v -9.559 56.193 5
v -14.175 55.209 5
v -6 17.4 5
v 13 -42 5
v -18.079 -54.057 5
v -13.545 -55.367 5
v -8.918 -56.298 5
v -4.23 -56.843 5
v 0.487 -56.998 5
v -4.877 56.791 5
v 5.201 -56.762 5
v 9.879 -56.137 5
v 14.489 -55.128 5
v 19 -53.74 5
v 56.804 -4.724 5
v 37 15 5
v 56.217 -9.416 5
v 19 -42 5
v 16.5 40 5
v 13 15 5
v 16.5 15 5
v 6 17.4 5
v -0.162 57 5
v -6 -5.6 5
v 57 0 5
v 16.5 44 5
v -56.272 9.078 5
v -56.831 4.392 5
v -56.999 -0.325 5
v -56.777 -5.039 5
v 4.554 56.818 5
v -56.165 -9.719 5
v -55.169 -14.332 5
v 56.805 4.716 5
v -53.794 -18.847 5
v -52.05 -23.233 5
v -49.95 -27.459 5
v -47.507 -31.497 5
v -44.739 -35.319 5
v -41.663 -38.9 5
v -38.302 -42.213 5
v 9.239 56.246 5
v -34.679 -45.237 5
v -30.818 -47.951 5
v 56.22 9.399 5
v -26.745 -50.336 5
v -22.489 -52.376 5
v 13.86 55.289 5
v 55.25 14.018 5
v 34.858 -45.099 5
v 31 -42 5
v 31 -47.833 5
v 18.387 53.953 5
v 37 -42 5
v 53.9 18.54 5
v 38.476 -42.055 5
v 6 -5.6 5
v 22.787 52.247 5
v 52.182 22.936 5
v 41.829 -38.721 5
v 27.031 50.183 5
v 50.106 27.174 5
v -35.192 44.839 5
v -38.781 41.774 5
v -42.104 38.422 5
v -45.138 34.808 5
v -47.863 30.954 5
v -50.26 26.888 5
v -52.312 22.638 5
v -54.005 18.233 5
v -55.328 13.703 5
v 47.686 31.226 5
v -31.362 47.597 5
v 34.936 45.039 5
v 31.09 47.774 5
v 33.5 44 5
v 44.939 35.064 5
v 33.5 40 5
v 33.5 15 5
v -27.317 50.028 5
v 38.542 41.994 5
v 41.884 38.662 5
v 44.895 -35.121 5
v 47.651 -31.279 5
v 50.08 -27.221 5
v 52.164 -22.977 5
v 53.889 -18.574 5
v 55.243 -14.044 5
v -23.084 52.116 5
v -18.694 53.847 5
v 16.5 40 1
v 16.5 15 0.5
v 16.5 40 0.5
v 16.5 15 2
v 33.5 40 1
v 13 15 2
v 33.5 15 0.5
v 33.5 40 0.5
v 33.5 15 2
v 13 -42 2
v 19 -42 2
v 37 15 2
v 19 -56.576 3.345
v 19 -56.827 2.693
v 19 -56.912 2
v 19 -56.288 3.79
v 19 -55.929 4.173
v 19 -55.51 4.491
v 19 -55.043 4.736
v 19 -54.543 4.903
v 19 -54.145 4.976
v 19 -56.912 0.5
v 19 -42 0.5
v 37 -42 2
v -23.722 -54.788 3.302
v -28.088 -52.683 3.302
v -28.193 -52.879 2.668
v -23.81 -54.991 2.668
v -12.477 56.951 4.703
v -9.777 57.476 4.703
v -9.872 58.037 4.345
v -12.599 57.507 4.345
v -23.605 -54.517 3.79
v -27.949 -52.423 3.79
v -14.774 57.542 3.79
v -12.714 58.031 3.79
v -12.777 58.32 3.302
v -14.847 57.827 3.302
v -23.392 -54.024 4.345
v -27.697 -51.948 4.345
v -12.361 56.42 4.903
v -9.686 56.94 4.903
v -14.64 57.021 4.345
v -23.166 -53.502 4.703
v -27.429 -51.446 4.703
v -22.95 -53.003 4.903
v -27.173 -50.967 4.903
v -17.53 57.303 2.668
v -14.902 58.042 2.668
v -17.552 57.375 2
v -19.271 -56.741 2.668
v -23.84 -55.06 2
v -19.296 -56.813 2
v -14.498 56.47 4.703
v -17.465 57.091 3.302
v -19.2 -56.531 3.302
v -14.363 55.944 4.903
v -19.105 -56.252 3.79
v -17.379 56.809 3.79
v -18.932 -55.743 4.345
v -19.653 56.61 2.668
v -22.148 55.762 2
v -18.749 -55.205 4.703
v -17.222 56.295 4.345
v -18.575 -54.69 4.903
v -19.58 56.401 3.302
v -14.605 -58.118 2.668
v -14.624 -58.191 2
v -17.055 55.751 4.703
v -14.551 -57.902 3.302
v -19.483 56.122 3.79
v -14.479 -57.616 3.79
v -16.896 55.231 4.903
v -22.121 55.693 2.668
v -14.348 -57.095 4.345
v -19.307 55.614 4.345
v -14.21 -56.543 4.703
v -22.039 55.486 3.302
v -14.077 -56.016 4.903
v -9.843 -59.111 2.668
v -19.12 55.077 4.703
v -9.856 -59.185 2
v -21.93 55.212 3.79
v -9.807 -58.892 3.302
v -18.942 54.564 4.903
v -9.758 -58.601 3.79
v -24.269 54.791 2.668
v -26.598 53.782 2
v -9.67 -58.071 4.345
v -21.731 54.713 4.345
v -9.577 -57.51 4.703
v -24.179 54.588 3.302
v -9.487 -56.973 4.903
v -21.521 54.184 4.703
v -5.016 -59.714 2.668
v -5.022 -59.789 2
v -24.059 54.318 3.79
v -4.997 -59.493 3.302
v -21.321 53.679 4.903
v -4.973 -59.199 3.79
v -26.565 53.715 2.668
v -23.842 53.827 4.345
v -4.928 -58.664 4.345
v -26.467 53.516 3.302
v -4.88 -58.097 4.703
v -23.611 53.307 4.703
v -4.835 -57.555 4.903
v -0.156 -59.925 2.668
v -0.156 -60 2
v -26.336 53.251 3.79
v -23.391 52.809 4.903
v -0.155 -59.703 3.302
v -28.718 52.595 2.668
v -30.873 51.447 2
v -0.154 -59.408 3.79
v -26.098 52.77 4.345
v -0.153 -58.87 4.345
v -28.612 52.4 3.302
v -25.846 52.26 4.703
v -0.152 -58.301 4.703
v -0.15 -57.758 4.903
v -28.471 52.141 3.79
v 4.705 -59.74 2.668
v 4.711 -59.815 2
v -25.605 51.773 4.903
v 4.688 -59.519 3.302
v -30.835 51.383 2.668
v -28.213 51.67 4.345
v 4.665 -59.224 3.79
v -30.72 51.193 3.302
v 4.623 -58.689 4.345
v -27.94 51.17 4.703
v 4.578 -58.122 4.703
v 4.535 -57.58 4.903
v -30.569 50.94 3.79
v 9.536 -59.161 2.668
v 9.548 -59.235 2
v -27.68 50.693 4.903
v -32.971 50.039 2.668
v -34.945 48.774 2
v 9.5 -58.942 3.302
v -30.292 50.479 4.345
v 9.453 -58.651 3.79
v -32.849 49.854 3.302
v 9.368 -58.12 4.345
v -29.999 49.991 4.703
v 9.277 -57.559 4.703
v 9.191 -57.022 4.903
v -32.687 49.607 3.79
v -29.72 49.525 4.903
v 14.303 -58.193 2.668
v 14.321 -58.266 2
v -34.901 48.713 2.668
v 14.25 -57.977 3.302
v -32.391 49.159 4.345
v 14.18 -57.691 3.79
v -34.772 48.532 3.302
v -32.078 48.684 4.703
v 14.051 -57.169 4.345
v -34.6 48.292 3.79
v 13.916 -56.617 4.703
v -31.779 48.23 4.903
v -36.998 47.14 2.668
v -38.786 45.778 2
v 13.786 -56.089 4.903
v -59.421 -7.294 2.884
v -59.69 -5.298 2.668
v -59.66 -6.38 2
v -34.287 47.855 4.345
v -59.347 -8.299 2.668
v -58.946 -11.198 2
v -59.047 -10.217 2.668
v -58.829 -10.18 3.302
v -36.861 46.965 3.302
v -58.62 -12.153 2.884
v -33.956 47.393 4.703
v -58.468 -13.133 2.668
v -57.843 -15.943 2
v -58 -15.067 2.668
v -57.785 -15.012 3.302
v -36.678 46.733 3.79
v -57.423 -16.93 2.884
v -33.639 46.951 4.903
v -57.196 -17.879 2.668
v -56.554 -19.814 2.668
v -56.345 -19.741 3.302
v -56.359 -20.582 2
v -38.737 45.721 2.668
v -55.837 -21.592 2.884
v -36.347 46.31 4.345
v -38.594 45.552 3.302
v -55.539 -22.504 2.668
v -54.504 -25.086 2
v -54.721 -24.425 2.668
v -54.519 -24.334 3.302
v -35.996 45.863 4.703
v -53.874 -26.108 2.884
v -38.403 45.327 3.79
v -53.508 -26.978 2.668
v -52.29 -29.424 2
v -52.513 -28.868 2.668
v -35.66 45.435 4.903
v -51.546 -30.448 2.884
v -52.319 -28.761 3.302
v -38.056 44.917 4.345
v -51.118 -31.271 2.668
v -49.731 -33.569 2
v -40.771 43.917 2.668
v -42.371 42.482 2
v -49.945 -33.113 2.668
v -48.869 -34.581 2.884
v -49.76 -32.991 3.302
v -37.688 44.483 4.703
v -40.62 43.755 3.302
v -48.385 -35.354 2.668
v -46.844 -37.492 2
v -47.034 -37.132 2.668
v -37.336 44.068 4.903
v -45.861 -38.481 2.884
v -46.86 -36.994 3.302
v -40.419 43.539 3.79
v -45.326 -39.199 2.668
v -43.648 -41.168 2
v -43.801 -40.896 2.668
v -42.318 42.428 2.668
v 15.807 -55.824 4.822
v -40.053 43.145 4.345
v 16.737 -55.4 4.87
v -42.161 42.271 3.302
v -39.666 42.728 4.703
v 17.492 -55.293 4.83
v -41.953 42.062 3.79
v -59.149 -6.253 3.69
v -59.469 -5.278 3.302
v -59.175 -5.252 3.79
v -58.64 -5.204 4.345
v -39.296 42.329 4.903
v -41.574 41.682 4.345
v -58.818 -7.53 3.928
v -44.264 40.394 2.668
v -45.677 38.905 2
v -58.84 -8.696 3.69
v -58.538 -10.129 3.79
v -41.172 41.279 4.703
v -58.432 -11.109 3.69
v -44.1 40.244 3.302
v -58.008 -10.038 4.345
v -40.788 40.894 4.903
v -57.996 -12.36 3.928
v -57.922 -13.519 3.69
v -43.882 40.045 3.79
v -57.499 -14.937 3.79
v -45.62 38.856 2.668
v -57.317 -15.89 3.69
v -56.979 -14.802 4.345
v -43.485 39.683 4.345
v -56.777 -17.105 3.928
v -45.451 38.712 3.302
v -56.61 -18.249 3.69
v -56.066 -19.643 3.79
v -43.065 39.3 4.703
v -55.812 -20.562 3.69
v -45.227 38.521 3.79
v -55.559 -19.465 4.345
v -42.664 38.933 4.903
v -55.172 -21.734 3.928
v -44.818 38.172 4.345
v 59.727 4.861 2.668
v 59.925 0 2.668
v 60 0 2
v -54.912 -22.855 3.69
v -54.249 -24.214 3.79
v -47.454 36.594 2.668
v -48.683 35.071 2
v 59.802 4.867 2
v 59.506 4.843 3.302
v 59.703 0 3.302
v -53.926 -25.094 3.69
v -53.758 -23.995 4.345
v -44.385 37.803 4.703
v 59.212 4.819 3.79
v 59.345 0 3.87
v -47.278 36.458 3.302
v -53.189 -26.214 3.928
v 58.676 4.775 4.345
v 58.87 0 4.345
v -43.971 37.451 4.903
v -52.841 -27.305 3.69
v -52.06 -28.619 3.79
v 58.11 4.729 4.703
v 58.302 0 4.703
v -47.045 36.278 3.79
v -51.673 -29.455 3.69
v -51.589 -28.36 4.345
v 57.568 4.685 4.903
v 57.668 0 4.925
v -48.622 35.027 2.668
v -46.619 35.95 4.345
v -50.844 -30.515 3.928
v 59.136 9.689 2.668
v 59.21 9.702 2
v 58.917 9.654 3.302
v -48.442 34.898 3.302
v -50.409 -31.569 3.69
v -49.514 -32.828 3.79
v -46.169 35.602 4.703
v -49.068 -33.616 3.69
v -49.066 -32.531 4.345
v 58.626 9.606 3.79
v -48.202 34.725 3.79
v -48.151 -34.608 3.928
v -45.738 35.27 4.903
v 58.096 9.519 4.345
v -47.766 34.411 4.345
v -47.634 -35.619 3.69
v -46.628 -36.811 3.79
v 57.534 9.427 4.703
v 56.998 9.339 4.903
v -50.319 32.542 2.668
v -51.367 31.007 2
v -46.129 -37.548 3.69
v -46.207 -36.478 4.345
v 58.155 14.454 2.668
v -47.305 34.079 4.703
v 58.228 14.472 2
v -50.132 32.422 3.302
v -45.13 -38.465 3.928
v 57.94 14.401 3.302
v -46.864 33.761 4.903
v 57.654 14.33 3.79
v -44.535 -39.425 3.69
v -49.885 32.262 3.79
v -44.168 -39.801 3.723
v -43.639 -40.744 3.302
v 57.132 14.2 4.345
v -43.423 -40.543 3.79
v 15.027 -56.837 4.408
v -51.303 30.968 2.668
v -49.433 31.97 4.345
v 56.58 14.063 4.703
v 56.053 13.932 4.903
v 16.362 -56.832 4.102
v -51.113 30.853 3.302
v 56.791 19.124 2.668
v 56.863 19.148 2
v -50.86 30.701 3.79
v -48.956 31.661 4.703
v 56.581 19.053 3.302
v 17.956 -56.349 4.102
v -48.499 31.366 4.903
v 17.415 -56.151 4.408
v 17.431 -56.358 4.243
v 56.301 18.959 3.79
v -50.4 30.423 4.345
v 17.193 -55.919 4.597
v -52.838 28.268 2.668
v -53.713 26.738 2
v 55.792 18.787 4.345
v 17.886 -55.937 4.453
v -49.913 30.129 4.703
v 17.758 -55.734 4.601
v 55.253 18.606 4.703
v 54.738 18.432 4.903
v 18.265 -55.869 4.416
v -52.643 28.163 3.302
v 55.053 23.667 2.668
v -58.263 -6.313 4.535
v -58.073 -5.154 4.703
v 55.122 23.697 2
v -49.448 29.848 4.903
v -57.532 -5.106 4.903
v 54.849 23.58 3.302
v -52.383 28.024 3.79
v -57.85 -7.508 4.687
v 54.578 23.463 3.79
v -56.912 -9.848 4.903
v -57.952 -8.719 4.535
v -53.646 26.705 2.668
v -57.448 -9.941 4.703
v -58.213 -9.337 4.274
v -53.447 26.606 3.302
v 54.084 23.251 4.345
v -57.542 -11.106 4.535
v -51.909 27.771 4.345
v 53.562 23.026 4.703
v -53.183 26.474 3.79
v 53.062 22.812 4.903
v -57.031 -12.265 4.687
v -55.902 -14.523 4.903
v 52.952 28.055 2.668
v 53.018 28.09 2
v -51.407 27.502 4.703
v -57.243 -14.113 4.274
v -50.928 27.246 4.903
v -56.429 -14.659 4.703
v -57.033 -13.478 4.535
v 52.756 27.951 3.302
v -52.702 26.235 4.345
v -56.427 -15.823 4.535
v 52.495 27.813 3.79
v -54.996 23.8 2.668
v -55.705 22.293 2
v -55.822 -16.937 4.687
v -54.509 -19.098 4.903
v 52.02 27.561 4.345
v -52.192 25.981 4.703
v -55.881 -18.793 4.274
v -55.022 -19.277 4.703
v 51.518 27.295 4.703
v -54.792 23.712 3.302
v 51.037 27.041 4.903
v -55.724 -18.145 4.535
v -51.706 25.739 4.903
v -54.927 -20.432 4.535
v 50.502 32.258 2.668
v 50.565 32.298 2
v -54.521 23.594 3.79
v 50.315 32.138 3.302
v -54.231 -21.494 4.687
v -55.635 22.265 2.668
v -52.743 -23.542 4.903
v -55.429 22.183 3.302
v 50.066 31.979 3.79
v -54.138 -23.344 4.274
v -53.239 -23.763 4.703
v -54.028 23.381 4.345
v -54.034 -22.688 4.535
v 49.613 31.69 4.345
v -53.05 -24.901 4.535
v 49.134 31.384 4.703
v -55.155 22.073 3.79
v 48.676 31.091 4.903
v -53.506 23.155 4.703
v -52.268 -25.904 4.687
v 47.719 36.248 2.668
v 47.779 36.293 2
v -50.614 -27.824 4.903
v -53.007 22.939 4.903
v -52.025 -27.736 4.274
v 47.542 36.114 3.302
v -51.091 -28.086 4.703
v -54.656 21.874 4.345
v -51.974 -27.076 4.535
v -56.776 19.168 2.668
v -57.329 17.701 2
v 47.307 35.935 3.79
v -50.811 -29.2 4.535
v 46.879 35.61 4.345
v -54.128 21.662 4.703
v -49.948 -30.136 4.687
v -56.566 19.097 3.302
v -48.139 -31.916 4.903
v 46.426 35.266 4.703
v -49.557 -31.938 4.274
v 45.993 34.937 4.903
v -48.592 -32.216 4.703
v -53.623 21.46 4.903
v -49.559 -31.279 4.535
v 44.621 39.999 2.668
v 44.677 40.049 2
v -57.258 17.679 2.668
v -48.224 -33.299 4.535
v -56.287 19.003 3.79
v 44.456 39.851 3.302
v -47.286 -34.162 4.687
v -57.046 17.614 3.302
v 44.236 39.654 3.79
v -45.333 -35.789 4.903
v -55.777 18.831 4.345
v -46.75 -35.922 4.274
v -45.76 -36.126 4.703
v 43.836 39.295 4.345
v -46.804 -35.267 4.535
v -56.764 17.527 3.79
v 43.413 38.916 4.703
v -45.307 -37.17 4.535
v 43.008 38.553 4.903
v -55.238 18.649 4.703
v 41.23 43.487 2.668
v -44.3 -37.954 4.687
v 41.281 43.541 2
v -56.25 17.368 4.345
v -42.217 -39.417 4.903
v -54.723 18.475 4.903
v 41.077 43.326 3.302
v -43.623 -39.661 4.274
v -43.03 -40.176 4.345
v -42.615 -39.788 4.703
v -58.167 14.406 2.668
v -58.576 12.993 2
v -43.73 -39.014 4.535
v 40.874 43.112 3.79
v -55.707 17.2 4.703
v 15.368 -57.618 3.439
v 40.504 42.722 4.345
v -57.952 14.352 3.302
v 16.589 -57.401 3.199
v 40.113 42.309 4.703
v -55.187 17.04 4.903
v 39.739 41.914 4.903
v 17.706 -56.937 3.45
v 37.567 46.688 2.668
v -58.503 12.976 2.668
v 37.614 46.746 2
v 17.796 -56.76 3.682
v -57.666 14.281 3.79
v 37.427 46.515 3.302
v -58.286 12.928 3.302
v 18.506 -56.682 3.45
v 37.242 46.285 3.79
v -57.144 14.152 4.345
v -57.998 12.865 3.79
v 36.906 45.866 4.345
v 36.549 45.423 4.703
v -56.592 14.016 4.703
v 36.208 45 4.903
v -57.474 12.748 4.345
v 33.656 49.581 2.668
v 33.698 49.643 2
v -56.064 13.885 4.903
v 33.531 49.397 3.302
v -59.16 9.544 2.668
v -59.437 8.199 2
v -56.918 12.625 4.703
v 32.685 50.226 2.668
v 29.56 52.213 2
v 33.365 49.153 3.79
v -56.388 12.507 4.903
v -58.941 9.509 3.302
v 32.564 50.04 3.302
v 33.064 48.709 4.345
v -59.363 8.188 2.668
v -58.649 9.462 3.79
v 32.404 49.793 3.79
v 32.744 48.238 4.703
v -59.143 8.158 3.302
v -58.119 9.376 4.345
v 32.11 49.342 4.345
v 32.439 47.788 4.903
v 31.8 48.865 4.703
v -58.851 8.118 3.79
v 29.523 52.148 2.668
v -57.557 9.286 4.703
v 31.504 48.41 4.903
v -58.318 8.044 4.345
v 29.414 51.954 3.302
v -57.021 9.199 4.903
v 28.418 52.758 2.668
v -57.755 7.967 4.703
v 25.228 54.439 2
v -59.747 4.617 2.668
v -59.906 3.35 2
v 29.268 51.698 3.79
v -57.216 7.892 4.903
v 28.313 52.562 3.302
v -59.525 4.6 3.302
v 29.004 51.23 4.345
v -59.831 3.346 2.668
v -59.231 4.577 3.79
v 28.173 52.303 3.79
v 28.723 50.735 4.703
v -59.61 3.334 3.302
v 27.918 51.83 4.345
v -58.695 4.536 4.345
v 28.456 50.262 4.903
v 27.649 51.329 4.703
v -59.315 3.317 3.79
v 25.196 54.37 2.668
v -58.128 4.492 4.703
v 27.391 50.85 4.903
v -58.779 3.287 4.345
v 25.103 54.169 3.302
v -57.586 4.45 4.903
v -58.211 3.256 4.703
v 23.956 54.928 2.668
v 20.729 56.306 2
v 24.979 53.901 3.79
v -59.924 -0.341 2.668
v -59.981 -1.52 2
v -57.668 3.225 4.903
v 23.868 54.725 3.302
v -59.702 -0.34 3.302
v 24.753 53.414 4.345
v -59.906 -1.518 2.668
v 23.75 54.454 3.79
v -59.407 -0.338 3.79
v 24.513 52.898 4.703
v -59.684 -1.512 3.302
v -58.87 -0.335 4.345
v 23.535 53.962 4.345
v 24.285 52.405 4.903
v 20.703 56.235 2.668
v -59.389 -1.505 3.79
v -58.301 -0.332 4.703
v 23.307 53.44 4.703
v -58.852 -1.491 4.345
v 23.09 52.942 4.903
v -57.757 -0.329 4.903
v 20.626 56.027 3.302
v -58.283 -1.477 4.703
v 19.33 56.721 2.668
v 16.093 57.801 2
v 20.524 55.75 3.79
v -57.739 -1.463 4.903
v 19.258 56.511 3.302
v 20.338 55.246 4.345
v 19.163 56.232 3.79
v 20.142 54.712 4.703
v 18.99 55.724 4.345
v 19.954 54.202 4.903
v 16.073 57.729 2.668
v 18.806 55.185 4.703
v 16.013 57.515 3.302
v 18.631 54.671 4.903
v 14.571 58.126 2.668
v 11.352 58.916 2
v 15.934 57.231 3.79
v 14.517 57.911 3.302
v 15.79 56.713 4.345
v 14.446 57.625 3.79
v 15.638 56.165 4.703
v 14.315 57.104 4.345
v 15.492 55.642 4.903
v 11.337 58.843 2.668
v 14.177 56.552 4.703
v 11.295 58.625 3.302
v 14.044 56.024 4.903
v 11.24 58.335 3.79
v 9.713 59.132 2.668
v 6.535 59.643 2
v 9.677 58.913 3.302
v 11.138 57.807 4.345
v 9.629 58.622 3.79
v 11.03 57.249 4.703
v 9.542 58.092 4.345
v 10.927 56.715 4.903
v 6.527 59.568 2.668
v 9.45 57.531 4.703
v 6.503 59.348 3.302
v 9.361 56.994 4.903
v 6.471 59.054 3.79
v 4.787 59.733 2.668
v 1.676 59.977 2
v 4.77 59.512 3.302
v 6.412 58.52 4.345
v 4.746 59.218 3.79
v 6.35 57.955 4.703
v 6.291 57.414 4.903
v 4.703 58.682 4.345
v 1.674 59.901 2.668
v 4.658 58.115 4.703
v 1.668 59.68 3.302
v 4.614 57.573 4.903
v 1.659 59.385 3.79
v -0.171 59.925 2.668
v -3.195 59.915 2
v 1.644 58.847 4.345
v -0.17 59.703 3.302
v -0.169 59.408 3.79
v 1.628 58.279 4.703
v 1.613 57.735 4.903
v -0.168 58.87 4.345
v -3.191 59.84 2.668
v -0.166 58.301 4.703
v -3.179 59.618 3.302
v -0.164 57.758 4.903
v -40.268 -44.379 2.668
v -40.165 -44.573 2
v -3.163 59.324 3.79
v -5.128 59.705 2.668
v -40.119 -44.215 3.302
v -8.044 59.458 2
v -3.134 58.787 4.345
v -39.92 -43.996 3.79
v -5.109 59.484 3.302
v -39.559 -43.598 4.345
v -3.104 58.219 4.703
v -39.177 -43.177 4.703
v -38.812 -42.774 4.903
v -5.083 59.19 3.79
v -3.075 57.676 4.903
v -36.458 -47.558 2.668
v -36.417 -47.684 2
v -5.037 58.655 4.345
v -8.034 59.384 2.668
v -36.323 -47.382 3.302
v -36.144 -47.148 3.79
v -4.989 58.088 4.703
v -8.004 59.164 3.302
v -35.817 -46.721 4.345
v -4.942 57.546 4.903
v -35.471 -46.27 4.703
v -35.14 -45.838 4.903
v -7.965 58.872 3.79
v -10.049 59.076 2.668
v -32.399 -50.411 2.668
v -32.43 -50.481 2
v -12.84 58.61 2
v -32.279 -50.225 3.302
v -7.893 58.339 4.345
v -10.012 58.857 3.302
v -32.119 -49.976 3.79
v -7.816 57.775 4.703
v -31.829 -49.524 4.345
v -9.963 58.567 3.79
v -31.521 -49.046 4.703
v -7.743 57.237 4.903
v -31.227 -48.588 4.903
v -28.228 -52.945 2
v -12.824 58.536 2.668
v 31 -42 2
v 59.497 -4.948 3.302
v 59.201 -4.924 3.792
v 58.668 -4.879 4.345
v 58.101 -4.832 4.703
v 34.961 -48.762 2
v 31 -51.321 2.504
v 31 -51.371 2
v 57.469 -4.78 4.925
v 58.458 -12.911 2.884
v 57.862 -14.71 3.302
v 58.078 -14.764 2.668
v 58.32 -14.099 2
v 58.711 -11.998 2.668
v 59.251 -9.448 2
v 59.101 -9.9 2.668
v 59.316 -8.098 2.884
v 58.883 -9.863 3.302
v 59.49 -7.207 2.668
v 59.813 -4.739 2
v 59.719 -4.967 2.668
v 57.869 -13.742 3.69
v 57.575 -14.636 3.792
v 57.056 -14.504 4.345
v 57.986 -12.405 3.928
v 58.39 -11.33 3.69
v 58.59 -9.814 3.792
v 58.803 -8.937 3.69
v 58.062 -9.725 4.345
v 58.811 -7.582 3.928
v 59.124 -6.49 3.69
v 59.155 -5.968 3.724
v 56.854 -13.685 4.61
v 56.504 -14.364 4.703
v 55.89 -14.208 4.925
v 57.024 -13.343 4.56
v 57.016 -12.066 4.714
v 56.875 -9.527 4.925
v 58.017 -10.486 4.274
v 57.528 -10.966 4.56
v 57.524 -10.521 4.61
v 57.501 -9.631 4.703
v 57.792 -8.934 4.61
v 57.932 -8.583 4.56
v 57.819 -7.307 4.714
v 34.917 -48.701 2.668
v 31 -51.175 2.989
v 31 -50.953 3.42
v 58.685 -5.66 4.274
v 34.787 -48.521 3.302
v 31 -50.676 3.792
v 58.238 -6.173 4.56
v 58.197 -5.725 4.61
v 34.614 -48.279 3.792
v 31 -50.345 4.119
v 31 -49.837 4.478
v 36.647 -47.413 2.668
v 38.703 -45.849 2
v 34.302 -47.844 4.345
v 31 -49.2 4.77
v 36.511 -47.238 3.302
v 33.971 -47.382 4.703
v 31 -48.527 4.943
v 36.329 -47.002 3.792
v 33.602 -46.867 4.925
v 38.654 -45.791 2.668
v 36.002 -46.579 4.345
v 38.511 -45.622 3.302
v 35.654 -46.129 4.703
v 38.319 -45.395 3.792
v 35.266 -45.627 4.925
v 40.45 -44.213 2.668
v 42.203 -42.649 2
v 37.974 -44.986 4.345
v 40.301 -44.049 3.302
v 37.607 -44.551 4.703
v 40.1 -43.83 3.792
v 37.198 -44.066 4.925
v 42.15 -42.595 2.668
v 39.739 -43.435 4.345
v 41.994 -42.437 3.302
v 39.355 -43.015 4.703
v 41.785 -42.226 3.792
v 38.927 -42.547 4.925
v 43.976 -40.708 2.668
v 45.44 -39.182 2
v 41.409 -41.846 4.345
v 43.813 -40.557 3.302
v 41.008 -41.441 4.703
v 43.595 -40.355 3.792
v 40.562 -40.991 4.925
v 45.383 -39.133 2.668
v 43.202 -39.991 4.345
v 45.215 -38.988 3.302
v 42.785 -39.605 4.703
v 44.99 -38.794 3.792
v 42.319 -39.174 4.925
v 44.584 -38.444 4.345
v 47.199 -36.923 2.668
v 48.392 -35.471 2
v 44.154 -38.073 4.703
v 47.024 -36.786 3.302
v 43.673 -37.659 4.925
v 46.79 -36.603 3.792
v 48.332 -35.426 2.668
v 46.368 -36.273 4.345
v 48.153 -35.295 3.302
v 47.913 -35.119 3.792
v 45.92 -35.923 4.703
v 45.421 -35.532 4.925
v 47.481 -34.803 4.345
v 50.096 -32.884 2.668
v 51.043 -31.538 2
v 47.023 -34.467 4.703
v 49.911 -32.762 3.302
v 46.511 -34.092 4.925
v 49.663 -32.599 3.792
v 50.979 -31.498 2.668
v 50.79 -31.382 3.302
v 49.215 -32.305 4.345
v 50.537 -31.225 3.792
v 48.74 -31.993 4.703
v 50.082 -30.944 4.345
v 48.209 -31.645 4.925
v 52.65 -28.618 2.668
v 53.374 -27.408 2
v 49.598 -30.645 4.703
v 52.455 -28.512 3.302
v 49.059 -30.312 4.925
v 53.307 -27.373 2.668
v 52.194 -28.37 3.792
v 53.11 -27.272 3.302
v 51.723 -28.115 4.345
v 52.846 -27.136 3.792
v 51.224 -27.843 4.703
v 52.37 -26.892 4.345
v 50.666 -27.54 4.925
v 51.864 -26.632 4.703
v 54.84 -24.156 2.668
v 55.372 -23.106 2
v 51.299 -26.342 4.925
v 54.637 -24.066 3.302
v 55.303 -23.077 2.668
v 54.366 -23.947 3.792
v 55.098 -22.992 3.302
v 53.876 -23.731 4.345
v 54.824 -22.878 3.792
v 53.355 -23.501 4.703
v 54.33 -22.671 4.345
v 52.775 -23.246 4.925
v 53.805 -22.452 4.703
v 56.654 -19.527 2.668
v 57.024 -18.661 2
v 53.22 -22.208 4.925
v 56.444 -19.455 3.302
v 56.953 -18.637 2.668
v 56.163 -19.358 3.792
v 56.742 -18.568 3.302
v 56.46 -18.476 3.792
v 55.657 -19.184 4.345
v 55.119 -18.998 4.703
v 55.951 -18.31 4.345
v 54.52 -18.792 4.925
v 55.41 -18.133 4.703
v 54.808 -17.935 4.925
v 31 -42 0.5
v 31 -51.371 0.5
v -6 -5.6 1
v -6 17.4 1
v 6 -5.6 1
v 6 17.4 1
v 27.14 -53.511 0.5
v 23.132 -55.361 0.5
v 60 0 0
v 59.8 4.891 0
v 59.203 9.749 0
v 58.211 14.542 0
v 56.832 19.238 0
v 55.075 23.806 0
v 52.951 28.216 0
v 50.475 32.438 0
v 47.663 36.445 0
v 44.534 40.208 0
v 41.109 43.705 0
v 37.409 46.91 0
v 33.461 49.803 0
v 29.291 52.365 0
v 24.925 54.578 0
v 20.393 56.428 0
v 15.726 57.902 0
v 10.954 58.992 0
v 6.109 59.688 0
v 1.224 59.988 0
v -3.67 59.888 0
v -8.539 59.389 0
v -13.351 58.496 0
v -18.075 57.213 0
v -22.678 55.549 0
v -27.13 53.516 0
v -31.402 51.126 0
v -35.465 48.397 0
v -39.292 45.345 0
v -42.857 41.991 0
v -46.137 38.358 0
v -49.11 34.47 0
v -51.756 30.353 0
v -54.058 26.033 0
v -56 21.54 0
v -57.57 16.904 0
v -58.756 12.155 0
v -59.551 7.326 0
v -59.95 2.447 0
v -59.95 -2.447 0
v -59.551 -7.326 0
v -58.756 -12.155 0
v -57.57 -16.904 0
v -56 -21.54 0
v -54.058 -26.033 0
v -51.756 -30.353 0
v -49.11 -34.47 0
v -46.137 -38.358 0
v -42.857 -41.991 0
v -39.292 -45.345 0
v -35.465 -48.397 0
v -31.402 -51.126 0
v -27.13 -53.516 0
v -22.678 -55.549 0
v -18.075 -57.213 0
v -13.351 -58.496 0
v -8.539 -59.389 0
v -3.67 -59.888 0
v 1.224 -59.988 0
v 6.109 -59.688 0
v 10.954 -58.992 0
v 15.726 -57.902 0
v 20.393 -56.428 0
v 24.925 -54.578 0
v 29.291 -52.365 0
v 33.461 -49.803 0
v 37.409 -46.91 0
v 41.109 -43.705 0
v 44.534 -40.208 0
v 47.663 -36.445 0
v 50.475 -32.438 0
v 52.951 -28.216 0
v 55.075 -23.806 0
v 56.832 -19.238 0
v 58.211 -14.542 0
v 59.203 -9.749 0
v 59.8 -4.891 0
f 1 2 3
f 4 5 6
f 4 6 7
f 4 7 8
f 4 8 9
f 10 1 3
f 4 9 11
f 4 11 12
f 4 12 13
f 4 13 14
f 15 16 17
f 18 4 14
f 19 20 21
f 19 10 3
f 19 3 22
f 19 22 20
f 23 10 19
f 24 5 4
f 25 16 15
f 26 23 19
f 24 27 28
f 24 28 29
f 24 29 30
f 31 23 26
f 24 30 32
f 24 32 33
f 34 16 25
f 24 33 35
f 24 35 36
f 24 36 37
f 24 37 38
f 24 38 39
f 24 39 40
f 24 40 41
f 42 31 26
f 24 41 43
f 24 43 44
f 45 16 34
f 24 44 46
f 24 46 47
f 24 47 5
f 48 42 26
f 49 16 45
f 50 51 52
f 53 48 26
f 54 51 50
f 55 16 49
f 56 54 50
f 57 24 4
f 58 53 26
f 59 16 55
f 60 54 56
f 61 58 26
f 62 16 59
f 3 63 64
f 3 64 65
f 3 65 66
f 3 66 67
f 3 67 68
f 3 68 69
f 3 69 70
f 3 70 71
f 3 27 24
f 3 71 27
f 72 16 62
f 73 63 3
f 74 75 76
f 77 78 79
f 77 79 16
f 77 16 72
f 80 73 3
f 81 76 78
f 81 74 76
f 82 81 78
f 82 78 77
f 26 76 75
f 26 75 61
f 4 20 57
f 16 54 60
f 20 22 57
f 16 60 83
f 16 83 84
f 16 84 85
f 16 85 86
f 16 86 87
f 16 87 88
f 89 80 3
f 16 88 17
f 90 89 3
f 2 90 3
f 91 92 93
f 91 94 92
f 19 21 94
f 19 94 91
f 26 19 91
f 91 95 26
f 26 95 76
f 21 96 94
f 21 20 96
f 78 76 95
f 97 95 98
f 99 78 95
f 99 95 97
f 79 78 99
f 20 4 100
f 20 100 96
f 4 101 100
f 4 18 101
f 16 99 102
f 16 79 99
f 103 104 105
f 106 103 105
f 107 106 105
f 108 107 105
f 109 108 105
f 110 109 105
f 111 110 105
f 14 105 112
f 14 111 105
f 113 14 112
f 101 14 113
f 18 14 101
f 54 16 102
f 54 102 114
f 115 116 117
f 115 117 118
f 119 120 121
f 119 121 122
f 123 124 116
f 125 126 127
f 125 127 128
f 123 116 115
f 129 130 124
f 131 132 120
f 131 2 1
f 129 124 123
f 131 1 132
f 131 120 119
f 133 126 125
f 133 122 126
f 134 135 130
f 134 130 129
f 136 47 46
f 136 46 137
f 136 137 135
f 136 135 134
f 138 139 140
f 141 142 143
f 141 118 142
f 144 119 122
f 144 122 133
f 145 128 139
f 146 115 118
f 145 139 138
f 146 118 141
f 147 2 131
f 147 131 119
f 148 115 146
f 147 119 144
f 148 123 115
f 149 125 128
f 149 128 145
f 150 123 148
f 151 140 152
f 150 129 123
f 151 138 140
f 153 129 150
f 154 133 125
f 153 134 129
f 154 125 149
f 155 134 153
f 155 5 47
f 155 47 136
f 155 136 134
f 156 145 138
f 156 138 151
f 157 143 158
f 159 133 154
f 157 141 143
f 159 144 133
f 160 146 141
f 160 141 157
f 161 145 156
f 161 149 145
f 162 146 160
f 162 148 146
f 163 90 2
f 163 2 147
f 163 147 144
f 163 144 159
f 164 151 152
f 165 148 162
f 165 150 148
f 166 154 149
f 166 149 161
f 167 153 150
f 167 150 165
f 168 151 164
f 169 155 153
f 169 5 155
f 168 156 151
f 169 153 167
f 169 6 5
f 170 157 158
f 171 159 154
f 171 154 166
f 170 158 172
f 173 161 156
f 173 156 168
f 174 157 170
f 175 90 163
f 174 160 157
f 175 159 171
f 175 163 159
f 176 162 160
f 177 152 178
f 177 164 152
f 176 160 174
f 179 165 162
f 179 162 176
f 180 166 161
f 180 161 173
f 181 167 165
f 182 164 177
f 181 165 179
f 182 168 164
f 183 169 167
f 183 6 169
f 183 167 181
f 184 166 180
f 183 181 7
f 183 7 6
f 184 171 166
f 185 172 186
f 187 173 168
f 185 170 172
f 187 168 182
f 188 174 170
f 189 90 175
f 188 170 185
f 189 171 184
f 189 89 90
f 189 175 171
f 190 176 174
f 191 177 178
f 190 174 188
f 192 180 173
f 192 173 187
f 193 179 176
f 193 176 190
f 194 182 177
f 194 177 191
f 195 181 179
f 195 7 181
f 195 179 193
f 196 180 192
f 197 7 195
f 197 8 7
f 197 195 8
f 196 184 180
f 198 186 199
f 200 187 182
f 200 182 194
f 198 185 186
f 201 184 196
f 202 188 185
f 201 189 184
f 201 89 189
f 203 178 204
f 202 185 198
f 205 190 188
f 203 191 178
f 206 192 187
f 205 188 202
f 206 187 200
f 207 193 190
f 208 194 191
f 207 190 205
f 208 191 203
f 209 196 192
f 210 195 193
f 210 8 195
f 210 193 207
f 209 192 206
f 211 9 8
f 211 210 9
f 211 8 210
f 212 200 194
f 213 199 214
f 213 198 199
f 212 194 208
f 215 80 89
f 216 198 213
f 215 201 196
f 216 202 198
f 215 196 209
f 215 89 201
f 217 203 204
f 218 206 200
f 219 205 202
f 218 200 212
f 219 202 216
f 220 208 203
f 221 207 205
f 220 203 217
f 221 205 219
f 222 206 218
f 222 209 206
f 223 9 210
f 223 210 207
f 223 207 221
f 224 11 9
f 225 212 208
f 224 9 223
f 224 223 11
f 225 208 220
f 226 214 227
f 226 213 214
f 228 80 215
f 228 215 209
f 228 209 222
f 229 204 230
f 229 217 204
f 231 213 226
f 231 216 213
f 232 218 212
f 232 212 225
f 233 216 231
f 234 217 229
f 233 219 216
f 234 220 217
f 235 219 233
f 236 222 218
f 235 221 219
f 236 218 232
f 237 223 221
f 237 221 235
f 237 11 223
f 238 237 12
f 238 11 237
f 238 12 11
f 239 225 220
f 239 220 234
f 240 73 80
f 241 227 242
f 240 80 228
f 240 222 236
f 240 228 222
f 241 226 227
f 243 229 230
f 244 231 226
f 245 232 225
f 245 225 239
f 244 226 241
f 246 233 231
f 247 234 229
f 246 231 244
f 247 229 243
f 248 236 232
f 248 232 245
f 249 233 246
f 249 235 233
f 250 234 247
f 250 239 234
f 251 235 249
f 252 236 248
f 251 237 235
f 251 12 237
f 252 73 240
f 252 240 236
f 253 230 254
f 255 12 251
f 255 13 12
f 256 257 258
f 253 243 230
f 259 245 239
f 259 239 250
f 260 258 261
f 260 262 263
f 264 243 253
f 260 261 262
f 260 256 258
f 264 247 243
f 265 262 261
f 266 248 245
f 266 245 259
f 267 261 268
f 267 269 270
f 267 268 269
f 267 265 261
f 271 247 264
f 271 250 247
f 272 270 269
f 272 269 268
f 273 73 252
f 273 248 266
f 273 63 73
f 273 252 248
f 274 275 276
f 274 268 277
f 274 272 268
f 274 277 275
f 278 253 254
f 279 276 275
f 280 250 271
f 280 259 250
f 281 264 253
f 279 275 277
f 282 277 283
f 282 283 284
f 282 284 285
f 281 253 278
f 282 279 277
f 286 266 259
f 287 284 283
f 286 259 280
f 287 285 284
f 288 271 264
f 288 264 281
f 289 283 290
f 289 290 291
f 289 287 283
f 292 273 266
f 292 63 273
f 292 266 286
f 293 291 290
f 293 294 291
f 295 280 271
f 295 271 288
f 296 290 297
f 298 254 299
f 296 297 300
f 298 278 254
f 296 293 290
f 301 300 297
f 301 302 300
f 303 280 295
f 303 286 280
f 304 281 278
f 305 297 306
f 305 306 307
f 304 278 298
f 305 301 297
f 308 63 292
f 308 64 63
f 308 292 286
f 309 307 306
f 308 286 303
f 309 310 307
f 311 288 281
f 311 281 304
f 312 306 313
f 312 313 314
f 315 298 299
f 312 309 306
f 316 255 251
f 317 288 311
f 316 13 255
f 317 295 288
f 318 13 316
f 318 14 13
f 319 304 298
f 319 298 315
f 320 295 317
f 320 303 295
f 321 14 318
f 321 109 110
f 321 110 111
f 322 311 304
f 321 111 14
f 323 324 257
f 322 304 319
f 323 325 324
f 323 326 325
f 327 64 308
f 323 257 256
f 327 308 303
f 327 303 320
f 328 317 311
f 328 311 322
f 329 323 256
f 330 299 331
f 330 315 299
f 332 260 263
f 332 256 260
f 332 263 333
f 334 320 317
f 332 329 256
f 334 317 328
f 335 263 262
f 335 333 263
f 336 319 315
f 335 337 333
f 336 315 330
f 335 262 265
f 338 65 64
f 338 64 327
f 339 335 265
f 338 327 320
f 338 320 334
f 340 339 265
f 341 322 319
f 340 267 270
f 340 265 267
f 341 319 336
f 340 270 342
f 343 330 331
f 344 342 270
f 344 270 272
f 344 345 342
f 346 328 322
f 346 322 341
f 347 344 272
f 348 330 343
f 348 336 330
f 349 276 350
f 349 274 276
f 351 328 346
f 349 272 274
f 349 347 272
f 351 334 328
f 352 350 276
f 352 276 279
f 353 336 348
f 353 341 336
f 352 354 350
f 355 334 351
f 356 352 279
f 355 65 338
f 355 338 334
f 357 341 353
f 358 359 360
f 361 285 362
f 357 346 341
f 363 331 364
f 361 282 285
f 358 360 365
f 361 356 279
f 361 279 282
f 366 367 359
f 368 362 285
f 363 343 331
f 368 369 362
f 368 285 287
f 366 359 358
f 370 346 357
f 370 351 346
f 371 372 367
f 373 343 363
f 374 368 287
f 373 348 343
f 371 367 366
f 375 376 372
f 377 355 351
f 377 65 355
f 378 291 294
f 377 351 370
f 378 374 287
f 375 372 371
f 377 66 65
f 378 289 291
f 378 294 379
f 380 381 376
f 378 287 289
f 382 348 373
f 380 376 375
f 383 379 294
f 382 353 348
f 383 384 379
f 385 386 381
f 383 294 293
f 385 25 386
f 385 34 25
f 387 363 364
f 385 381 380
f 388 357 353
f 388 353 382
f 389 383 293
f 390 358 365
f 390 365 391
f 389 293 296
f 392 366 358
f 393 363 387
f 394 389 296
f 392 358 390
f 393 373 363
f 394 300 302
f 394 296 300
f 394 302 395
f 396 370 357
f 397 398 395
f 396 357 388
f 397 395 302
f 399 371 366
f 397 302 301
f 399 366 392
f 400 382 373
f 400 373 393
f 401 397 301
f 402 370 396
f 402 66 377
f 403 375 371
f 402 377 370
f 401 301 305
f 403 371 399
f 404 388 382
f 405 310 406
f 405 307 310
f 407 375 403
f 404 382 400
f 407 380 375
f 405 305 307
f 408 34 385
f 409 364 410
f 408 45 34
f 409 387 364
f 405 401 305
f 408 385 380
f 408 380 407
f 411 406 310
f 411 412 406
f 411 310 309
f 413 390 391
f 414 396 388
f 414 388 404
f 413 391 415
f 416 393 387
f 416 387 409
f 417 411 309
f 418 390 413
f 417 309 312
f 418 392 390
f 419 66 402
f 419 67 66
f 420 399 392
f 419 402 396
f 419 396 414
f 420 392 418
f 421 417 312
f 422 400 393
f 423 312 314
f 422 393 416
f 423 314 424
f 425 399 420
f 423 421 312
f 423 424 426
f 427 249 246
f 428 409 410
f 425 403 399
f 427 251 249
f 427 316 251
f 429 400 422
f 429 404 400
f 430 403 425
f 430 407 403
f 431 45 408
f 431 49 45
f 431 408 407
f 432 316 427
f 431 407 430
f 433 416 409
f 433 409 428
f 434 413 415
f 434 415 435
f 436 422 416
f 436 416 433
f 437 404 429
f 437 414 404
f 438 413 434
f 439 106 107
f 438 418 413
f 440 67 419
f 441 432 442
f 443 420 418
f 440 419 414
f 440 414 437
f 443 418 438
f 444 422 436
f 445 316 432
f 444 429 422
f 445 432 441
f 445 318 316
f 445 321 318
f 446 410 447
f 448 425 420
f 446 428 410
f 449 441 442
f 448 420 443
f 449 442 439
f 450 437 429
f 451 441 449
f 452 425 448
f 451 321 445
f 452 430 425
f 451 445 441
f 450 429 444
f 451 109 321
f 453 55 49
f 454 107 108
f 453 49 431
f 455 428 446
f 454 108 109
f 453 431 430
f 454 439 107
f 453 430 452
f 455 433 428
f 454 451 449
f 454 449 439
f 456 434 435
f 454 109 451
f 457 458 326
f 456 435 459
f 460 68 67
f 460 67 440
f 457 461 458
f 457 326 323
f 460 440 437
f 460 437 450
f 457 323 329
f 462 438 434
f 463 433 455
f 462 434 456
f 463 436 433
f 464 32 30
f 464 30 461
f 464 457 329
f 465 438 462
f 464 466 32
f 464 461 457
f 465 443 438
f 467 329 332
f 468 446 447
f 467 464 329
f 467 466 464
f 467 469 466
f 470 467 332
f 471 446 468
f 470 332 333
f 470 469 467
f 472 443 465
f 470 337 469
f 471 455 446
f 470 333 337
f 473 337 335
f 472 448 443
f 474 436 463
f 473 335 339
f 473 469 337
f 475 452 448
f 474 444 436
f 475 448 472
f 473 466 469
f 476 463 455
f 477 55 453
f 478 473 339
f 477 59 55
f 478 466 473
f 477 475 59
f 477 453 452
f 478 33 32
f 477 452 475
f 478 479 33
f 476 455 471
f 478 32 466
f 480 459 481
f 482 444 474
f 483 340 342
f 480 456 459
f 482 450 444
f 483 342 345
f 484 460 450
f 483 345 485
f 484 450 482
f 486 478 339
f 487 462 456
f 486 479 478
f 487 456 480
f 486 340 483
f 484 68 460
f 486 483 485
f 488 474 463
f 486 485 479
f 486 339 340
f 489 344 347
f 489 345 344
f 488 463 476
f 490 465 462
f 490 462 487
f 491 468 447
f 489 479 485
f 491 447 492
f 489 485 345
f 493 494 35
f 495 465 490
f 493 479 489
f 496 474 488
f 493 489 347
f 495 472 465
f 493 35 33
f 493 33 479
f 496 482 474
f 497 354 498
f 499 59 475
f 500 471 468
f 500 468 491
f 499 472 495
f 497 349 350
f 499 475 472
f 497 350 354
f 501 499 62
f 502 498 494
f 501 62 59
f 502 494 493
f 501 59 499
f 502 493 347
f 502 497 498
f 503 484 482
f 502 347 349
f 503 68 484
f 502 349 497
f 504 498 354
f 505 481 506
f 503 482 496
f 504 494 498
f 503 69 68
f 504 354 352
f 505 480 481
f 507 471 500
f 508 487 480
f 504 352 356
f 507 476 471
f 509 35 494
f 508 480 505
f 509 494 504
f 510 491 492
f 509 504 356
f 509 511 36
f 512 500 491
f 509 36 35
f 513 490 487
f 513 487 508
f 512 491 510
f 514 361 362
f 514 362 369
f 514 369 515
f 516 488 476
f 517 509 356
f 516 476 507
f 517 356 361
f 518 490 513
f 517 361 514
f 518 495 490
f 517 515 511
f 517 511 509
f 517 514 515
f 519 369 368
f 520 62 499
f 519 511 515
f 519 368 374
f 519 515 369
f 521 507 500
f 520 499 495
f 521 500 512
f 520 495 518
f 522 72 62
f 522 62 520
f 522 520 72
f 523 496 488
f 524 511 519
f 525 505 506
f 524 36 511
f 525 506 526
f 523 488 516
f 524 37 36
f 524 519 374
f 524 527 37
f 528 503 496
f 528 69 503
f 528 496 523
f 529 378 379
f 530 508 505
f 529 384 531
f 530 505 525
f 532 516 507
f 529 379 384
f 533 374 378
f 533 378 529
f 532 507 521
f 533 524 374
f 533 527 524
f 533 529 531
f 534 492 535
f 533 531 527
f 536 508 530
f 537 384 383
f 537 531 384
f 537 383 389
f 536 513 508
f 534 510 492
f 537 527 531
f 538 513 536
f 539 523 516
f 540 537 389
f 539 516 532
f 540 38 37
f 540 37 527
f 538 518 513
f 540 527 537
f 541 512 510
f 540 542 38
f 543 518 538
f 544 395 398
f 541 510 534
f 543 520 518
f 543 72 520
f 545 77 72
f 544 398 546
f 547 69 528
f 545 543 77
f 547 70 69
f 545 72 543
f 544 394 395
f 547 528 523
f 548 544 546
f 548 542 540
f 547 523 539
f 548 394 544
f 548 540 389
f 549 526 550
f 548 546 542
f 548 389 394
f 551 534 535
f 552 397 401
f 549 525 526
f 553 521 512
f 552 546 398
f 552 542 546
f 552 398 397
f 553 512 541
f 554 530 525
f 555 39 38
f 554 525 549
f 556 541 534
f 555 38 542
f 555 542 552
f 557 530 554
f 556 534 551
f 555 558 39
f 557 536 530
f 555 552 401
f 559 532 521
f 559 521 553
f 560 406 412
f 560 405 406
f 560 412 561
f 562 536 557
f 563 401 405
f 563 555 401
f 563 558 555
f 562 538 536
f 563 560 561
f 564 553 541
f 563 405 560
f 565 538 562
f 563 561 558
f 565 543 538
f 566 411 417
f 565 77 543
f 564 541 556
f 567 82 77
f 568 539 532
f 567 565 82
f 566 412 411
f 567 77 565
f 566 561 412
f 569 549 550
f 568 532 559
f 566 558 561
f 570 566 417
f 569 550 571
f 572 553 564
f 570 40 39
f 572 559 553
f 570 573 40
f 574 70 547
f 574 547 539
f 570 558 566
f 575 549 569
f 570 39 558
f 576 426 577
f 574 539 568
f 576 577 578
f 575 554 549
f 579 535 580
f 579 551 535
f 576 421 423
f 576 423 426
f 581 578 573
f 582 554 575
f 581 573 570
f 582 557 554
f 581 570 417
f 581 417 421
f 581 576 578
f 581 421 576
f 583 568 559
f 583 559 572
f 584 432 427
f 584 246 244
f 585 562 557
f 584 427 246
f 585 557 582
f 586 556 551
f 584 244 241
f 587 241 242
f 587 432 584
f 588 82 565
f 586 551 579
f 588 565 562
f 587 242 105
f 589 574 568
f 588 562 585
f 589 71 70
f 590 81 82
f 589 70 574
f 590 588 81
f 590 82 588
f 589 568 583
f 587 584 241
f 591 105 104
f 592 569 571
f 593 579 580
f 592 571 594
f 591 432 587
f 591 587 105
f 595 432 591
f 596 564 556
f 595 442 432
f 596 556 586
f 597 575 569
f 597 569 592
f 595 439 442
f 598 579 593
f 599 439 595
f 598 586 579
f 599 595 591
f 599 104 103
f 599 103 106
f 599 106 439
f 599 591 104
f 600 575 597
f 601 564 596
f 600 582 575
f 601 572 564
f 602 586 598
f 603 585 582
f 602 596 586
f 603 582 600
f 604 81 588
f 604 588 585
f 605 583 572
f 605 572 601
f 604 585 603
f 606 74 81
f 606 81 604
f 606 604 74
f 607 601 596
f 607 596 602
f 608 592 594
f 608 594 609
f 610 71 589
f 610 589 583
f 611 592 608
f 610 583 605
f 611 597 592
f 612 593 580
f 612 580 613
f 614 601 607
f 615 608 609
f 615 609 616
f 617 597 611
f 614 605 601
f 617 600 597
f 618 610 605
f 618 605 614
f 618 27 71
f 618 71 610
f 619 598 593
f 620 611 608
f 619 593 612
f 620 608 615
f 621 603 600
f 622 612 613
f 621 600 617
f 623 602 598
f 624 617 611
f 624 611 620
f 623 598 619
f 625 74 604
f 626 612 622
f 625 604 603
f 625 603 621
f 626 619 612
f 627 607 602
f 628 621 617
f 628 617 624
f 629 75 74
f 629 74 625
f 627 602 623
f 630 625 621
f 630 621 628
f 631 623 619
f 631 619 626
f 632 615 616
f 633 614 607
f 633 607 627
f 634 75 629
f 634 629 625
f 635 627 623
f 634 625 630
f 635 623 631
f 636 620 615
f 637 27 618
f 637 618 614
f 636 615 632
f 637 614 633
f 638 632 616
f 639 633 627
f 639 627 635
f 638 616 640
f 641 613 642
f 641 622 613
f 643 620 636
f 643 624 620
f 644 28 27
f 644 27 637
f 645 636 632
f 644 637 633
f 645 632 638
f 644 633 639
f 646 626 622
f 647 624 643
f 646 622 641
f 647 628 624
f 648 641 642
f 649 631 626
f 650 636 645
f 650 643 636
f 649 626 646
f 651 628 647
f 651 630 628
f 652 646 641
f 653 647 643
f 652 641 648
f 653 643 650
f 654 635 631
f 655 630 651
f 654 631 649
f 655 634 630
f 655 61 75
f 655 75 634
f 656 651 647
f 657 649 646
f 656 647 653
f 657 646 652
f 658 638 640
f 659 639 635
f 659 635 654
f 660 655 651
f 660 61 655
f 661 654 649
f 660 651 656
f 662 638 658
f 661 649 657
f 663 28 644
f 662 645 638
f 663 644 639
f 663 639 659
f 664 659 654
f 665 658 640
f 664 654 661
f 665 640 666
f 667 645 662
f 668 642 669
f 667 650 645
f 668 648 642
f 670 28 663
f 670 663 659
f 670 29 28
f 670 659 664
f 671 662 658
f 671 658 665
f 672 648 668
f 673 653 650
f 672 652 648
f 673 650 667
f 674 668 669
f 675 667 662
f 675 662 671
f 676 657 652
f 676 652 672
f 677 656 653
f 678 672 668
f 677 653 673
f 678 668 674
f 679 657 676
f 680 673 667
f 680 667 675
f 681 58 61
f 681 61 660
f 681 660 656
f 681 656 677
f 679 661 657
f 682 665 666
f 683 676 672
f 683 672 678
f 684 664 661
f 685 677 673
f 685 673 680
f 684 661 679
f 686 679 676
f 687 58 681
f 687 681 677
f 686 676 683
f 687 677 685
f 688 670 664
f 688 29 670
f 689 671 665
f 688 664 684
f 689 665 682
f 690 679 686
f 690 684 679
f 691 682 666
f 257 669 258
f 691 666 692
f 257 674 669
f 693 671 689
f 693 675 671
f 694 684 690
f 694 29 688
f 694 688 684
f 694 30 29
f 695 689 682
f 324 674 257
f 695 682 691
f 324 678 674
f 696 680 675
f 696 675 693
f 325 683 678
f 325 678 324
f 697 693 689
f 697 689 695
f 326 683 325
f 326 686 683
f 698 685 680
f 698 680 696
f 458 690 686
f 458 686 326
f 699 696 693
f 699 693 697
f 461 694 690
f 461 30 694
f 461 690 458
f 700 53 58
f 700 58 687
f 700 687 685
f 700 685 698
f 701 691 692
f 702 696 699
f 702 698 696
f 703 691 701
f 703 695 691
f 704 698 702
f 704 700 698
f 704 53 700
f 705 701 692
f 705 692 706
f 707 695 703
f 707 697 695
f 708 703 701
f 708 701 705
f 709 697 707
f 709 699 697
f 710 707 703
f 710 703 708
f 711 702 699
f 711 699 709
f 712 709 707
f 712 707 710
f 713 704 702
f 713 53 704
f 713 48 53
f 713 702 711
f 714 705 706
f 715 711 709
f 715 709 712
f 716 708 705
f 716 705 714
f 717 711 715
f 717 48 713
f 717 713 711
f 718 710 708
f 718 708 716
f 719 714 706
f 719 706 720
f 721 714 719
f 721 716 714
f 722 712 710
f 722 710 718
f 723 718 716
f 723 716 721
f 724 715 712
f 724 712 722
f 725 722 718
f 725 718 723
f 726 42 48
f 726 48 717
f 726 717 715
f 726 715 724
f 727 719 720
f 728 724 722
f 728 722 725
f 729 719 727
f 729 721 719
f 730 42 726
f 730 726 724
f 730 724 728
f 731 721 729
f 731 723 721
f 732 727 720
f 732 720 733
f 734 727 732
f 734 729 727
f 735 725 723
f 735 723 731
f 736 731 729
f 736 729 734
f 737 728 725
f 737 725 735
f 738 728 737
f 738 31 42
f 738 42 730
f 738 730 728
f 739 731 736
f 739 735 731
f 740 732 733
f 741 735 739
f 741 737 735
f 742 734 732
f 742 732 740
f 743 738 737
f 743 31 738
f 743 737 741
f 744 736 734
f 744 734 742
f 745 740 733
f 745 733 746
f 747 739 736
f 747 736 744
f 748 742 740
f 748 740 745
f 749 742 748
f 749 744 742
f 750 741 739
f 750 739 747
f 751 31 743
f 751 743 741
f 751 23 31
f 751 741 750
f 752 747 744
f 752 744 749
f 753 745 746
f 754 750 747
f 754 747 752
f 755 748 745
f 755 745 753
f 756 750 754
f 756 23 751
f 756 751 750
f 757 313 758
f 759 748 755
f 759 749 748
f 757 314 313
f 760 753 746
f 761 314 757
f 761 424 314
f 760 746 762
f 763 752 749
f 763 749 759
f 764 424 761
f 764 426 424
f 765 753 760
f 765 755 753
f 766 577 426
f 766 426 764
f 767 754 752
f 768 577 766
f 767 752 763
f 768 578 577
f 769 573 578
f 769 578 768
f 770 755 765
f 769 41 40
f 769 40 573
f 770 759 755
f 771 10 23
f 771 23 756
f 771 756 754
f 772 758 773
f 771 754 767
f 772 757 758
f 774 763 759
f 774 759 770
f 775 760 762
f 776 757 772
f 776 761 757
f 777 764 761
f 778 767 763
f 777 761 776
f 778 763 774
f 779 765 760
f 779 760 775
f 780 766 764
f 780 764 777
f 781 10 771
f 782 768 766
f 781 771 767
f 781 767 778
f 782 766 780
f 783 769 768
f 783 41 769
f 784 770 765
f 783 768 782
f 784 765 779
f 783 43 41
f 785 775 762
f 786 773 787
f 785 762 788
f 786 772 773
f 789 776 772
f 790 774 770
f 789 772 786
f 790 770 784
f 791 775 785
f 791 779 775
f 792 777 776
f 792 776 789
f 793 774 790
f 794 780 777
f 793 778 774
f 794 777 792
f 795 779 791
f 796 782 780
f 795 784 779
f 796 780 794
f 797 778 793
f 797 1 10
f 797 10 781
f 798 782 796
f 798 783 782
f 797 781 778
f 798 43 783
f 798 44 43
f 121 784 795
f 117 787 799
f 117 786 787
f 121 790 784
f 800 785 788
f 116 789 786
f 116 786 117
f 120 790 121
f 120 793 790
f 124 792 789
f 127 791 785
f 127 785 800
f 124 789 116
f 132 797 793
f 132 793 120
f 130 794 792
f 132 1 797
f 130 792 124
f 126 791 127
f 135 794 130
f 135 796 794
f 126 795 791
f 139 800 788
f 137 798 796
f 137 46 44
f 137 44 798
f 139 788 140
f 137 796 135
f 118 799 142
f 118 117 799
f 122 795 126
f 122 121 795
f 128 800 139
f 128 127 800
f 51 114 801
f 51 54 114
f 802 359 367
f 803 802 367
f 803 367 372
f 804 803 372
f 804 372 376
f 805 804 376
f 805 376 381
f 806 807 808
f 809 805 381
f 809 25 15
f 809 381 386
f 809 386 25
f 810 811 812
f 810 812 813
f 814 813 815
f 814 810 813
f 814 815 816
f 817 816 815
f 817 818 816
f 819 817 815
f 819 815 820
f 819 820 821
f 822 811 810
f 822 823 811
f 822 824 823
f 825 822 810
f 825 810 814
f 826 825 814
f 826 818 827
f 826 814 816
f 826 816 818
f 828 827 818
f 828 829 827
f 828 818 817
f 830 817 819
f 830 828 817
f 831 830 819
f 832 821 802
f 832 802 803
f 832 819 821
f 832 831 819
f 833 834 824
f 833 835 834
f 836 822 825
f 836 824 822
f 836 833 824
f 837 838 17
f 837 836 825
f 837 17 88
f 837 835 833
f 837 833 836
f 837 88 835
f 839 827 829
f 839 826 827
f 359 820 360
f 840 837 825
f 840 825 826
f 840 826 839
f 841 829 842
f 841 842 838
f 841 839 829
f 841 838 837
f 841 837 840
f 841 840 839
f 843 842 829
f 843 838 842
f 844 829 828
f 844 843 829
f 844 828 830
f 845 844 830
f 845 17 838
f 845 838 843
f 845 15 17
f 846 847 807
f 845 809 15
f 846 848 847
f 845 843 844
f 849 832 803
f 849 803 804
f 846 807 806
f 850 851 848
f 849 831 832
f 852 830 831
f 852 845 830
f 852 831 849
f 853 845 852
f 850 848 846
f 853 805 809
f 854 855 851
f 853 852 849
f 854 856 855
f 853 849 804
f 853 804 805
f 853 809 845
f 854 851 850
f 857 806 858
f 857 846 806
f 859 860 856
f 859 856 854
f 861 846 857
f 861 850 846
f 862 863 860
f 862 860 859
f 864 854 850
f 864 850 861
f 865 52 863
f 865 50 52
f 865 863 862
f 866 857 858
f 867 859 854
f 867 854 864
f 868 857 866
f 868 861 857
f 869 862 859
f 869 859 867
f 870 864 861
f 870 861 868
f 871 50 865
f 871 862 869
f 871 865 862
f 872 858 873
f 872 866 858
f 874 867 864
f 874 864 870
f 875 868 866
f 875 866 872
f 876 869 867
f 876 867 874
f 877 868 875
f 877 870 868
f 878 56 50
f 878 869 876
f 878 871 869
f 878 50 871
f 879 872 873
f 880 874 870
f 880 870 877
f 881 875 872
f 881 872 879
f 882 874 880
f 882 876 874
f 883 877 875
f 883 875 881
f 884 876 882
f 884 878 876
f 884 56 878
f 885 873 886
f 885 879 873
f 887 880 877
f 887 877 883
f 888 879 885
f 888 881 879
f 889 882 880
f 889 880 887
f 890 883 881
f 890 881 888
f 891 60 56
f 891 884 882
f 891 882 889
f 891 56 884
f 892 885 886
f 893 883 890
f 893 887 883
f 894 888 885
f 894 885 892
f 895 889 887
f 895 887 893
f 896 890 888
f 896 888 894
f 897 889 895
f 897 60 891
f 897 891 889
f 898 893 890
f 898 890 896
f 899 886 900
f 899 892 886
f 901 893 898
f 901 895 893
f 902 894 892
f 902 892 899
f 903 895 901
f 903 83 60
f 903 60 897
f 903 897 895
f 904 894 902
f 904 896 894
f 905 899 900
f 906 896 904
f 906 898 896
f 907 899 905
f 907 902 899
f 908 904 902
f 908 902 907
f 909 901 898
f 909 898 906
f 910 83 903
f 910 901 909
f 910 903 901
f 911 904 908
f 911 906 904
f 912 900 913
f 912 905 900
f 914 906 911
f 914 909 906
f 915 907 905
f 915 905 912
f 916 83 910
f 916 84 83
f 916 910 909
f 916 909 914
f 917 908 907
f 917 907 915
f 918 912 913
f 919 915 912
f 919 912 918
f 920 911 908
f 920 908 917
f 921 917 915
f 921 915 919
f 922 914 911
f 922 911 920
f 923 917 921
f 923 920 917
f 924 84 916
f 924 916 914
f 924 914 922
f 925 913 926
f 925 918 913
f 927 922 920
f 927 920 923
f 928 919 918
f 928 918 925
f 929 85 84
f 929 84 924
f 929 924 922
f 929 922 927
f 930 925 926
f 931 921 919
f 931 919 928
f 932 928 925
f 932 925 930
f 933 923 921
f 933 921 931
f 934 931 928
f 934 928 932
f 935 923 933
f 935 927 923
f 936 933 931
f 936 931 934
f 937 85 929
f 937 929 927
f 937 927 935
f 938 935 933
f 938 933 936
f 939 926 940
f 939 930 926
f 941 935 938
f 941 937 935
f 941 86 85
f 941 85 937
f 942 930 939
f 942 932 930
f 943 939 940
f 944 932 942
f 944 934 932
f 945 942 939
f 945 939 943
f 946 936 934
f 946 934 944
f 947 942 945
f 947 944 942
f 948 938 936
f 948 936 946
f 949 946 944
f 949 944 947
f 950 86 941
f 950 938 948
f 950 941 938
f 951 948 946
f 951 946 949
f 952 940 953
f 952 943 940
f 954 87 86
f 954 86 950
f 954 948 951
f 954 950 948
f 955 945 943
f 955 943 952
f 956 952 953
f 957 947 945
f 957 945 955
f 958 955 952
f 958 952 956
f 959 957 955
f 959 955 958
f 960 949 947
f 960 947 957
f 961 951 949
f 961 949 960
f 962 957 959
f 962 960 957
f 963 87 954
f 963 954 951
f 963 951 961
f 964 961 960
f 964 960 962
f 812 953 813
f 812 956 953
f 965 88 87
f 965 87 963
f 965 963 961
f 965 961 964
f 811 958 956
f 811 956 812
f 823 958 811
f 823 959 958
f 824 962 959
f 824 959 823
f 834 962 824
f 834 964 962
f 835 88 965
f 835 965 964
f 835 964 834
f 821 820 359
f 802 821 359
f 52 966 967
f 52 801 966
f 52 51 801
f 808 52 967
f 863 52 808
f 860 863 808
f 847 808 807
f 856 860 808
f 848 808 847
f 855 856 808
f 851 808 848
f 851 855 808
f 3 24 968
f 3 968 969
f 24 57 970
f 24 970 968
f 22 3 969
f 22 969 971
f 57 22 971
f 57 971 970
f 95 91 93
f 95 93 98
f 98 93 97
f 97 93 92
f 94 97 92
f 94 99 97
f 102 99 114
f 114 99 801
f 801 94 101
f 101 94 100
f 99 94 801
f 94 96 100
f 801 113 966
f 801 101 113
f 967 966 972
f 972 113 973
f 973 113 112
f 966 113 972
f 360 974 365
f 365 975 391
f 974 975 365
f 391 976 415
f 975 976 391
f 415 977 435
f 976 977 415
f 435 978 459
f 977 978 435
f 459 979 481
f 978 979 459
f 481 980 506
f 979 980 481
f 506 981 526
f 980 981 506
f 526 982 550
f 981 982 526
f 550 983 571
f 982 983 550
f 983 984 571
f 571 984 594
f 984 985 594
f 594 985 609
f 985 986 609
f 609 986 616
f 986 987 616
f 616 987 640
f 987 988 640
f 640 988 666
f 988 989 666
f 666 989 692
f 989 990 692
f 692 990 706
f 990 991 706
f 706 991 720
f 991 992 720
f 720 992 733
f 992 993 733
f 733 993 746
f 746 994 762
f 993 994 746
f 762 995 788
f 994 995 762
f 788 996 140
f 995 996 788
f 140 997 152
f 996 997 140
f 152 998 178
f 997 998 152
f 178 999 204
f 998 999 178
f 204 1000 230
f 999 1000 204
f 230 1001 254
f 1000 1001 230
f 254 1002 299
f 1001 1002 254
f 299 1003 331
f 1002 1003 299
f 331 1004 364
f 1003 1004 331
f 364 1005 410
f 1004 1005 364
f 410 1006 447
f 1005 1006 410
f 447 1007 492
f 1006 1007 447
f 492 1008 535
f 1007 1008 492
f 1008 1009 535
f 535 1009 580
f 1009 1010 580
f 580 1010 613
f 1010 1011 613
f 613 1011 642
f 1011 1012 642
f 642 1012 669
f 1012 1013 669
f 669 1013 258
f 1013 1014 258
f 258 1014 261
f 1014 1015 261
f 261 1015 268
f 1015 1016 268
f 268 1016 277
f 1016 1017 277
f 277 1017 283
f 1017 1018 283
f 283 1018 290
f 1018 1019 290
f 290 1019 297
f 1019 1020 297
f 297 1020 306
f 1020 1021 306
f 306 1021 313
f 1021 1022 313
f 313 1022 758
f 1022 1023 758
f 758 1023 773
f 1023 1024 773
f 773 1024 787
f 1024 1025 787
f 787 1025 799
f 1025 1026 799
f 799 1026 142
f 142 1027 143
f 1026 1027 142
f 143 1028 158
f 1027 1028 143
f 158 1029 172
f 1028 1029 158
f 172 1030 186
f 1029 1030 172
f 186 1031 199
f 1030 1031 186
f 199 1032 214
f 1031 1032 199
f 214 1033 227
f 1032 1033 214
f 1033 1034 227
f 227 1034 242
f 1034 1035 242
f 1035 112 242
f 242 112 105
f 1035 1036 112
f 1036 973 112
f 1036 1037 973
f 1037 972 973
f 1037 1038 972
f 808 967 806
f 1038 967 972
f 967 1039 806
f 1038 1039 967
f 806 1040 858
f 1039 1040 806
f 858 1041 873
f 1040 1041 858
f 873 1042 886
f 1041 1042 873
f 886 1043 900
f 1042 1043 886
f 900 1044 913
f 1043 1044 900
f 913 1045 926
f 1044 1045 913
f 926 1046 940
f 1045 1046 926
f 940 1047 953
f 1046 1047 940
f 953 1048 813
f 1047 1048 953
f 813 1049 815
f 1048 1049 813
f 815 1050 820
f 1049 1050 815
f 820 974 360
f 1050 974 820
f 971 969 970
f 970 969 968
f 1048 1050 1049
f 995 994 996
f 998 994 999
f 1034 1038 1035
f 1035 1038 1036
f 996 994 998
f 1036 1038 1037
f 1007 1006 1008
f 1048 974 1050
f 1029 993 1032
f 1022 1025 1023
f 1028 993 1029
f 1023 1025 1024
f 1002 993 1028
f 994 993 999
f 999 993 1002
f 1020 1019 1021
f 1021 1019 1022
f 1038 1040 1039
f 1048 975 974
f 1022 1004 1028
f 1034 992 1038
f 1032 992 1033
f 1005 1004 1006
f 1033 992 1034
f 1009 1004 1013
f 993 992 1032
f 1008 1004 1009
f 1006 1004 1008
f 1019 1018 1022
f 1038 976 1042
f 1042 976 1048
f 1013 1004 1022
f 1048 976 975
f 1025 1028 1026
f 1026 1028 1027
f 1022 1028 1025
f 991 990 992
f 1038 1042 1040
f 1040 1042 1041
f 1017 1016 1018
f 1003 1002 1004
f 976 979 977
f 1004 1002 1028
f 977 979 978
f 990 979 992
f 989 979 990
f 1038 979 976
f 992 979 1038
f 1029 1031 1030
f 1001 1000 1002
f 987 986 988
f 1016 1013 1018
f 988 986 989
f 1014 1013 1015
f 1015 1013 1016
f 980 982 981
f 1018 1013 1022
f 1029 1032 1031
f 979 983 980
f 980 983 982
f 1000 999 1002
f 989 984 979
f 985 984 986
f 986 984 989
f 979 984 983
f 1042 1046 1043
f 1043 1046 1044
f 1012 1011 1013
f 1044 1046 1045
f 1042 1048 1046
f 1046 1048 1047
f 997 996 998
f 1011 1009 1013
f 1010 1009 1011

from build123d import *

# Parameters (mm, degrees)
SKETCH_R        = 60
PAD_DEPTH       = 5
SKETCH001_W     = 12
SKETCH001_H     = 23
POCKET_DEPTH    = 4
FILLET_R        = 3
SKETCH002_W     = 24
SKETCH002_H     = 57
POCKET001_DEPTH = 3
SKETCH003_W     = 17
SKETCH003_H     = 25
SKETCH003_W_2   = 12
SKETCH003_H_2   = 20
POCKET002_DEPTH = 4.5
CHAMFER_SIZE    = 4


with BuildPart() as part:
    # Sketch → Pad (new body)
    with BuildSketch(Plane.XY):
        Circle(SKETCH_R)
    extrude(amount=PAD_DEPTH)

    # Sketch001 (on Face3 of Pad) → Pocket (cut)
    with BuildSketch(Plane.XY.offset(5)):
        with Locations((0, 5.9)):
            Rectangle(SKETCH001_W, SKETCH001_H)
    extrude(amount=-POCKET_DEPTH, mode=Mode.SUBTRACT)

    # Fillet
    fillet_edges = [part.edges().sort_by_distance(p)[0] for p in [
        (-60, 0, 5),
    ]]
    fillet(fillet_edges, radius=FILLET_R)

    # Sketch002 (on Face4 of Fillet) → Pocket001 (cut)
    with BuildSketch(Plane.XY.offset(5)):
        with Locations((25, -13.5)):
            Rectangle(SKETCH002_W, SKETCH002_H)
    extrude(amount=-POCKET001_DEPTH, mode=Mode.SUBTRACT)

    # Sketch003 (on Face4 of Pocket001) → Pocket002 (cut)
    with BuildSketch(Plane.XY.offset(5)):
        with Locations((25, 27.5)):
            Rectangle(SKETCH003_W, SKETCH003_H)
        with Locations((25, -52)):
            Rectangle(SKETCH003_W_2, SKETCH003_H_2)
    extrude(amount=-POCKET002_DEPTH, mode=Mode.SUBTRACT)

    # Chamfer
    chamfer_edges = [part.edges().sort_by_distance(p)[0] for p in [
        (25, 40, 5),
    ]]
    chamfer(chamfer_edges, length=CHAMFER_SIZE)


solid = part.part
